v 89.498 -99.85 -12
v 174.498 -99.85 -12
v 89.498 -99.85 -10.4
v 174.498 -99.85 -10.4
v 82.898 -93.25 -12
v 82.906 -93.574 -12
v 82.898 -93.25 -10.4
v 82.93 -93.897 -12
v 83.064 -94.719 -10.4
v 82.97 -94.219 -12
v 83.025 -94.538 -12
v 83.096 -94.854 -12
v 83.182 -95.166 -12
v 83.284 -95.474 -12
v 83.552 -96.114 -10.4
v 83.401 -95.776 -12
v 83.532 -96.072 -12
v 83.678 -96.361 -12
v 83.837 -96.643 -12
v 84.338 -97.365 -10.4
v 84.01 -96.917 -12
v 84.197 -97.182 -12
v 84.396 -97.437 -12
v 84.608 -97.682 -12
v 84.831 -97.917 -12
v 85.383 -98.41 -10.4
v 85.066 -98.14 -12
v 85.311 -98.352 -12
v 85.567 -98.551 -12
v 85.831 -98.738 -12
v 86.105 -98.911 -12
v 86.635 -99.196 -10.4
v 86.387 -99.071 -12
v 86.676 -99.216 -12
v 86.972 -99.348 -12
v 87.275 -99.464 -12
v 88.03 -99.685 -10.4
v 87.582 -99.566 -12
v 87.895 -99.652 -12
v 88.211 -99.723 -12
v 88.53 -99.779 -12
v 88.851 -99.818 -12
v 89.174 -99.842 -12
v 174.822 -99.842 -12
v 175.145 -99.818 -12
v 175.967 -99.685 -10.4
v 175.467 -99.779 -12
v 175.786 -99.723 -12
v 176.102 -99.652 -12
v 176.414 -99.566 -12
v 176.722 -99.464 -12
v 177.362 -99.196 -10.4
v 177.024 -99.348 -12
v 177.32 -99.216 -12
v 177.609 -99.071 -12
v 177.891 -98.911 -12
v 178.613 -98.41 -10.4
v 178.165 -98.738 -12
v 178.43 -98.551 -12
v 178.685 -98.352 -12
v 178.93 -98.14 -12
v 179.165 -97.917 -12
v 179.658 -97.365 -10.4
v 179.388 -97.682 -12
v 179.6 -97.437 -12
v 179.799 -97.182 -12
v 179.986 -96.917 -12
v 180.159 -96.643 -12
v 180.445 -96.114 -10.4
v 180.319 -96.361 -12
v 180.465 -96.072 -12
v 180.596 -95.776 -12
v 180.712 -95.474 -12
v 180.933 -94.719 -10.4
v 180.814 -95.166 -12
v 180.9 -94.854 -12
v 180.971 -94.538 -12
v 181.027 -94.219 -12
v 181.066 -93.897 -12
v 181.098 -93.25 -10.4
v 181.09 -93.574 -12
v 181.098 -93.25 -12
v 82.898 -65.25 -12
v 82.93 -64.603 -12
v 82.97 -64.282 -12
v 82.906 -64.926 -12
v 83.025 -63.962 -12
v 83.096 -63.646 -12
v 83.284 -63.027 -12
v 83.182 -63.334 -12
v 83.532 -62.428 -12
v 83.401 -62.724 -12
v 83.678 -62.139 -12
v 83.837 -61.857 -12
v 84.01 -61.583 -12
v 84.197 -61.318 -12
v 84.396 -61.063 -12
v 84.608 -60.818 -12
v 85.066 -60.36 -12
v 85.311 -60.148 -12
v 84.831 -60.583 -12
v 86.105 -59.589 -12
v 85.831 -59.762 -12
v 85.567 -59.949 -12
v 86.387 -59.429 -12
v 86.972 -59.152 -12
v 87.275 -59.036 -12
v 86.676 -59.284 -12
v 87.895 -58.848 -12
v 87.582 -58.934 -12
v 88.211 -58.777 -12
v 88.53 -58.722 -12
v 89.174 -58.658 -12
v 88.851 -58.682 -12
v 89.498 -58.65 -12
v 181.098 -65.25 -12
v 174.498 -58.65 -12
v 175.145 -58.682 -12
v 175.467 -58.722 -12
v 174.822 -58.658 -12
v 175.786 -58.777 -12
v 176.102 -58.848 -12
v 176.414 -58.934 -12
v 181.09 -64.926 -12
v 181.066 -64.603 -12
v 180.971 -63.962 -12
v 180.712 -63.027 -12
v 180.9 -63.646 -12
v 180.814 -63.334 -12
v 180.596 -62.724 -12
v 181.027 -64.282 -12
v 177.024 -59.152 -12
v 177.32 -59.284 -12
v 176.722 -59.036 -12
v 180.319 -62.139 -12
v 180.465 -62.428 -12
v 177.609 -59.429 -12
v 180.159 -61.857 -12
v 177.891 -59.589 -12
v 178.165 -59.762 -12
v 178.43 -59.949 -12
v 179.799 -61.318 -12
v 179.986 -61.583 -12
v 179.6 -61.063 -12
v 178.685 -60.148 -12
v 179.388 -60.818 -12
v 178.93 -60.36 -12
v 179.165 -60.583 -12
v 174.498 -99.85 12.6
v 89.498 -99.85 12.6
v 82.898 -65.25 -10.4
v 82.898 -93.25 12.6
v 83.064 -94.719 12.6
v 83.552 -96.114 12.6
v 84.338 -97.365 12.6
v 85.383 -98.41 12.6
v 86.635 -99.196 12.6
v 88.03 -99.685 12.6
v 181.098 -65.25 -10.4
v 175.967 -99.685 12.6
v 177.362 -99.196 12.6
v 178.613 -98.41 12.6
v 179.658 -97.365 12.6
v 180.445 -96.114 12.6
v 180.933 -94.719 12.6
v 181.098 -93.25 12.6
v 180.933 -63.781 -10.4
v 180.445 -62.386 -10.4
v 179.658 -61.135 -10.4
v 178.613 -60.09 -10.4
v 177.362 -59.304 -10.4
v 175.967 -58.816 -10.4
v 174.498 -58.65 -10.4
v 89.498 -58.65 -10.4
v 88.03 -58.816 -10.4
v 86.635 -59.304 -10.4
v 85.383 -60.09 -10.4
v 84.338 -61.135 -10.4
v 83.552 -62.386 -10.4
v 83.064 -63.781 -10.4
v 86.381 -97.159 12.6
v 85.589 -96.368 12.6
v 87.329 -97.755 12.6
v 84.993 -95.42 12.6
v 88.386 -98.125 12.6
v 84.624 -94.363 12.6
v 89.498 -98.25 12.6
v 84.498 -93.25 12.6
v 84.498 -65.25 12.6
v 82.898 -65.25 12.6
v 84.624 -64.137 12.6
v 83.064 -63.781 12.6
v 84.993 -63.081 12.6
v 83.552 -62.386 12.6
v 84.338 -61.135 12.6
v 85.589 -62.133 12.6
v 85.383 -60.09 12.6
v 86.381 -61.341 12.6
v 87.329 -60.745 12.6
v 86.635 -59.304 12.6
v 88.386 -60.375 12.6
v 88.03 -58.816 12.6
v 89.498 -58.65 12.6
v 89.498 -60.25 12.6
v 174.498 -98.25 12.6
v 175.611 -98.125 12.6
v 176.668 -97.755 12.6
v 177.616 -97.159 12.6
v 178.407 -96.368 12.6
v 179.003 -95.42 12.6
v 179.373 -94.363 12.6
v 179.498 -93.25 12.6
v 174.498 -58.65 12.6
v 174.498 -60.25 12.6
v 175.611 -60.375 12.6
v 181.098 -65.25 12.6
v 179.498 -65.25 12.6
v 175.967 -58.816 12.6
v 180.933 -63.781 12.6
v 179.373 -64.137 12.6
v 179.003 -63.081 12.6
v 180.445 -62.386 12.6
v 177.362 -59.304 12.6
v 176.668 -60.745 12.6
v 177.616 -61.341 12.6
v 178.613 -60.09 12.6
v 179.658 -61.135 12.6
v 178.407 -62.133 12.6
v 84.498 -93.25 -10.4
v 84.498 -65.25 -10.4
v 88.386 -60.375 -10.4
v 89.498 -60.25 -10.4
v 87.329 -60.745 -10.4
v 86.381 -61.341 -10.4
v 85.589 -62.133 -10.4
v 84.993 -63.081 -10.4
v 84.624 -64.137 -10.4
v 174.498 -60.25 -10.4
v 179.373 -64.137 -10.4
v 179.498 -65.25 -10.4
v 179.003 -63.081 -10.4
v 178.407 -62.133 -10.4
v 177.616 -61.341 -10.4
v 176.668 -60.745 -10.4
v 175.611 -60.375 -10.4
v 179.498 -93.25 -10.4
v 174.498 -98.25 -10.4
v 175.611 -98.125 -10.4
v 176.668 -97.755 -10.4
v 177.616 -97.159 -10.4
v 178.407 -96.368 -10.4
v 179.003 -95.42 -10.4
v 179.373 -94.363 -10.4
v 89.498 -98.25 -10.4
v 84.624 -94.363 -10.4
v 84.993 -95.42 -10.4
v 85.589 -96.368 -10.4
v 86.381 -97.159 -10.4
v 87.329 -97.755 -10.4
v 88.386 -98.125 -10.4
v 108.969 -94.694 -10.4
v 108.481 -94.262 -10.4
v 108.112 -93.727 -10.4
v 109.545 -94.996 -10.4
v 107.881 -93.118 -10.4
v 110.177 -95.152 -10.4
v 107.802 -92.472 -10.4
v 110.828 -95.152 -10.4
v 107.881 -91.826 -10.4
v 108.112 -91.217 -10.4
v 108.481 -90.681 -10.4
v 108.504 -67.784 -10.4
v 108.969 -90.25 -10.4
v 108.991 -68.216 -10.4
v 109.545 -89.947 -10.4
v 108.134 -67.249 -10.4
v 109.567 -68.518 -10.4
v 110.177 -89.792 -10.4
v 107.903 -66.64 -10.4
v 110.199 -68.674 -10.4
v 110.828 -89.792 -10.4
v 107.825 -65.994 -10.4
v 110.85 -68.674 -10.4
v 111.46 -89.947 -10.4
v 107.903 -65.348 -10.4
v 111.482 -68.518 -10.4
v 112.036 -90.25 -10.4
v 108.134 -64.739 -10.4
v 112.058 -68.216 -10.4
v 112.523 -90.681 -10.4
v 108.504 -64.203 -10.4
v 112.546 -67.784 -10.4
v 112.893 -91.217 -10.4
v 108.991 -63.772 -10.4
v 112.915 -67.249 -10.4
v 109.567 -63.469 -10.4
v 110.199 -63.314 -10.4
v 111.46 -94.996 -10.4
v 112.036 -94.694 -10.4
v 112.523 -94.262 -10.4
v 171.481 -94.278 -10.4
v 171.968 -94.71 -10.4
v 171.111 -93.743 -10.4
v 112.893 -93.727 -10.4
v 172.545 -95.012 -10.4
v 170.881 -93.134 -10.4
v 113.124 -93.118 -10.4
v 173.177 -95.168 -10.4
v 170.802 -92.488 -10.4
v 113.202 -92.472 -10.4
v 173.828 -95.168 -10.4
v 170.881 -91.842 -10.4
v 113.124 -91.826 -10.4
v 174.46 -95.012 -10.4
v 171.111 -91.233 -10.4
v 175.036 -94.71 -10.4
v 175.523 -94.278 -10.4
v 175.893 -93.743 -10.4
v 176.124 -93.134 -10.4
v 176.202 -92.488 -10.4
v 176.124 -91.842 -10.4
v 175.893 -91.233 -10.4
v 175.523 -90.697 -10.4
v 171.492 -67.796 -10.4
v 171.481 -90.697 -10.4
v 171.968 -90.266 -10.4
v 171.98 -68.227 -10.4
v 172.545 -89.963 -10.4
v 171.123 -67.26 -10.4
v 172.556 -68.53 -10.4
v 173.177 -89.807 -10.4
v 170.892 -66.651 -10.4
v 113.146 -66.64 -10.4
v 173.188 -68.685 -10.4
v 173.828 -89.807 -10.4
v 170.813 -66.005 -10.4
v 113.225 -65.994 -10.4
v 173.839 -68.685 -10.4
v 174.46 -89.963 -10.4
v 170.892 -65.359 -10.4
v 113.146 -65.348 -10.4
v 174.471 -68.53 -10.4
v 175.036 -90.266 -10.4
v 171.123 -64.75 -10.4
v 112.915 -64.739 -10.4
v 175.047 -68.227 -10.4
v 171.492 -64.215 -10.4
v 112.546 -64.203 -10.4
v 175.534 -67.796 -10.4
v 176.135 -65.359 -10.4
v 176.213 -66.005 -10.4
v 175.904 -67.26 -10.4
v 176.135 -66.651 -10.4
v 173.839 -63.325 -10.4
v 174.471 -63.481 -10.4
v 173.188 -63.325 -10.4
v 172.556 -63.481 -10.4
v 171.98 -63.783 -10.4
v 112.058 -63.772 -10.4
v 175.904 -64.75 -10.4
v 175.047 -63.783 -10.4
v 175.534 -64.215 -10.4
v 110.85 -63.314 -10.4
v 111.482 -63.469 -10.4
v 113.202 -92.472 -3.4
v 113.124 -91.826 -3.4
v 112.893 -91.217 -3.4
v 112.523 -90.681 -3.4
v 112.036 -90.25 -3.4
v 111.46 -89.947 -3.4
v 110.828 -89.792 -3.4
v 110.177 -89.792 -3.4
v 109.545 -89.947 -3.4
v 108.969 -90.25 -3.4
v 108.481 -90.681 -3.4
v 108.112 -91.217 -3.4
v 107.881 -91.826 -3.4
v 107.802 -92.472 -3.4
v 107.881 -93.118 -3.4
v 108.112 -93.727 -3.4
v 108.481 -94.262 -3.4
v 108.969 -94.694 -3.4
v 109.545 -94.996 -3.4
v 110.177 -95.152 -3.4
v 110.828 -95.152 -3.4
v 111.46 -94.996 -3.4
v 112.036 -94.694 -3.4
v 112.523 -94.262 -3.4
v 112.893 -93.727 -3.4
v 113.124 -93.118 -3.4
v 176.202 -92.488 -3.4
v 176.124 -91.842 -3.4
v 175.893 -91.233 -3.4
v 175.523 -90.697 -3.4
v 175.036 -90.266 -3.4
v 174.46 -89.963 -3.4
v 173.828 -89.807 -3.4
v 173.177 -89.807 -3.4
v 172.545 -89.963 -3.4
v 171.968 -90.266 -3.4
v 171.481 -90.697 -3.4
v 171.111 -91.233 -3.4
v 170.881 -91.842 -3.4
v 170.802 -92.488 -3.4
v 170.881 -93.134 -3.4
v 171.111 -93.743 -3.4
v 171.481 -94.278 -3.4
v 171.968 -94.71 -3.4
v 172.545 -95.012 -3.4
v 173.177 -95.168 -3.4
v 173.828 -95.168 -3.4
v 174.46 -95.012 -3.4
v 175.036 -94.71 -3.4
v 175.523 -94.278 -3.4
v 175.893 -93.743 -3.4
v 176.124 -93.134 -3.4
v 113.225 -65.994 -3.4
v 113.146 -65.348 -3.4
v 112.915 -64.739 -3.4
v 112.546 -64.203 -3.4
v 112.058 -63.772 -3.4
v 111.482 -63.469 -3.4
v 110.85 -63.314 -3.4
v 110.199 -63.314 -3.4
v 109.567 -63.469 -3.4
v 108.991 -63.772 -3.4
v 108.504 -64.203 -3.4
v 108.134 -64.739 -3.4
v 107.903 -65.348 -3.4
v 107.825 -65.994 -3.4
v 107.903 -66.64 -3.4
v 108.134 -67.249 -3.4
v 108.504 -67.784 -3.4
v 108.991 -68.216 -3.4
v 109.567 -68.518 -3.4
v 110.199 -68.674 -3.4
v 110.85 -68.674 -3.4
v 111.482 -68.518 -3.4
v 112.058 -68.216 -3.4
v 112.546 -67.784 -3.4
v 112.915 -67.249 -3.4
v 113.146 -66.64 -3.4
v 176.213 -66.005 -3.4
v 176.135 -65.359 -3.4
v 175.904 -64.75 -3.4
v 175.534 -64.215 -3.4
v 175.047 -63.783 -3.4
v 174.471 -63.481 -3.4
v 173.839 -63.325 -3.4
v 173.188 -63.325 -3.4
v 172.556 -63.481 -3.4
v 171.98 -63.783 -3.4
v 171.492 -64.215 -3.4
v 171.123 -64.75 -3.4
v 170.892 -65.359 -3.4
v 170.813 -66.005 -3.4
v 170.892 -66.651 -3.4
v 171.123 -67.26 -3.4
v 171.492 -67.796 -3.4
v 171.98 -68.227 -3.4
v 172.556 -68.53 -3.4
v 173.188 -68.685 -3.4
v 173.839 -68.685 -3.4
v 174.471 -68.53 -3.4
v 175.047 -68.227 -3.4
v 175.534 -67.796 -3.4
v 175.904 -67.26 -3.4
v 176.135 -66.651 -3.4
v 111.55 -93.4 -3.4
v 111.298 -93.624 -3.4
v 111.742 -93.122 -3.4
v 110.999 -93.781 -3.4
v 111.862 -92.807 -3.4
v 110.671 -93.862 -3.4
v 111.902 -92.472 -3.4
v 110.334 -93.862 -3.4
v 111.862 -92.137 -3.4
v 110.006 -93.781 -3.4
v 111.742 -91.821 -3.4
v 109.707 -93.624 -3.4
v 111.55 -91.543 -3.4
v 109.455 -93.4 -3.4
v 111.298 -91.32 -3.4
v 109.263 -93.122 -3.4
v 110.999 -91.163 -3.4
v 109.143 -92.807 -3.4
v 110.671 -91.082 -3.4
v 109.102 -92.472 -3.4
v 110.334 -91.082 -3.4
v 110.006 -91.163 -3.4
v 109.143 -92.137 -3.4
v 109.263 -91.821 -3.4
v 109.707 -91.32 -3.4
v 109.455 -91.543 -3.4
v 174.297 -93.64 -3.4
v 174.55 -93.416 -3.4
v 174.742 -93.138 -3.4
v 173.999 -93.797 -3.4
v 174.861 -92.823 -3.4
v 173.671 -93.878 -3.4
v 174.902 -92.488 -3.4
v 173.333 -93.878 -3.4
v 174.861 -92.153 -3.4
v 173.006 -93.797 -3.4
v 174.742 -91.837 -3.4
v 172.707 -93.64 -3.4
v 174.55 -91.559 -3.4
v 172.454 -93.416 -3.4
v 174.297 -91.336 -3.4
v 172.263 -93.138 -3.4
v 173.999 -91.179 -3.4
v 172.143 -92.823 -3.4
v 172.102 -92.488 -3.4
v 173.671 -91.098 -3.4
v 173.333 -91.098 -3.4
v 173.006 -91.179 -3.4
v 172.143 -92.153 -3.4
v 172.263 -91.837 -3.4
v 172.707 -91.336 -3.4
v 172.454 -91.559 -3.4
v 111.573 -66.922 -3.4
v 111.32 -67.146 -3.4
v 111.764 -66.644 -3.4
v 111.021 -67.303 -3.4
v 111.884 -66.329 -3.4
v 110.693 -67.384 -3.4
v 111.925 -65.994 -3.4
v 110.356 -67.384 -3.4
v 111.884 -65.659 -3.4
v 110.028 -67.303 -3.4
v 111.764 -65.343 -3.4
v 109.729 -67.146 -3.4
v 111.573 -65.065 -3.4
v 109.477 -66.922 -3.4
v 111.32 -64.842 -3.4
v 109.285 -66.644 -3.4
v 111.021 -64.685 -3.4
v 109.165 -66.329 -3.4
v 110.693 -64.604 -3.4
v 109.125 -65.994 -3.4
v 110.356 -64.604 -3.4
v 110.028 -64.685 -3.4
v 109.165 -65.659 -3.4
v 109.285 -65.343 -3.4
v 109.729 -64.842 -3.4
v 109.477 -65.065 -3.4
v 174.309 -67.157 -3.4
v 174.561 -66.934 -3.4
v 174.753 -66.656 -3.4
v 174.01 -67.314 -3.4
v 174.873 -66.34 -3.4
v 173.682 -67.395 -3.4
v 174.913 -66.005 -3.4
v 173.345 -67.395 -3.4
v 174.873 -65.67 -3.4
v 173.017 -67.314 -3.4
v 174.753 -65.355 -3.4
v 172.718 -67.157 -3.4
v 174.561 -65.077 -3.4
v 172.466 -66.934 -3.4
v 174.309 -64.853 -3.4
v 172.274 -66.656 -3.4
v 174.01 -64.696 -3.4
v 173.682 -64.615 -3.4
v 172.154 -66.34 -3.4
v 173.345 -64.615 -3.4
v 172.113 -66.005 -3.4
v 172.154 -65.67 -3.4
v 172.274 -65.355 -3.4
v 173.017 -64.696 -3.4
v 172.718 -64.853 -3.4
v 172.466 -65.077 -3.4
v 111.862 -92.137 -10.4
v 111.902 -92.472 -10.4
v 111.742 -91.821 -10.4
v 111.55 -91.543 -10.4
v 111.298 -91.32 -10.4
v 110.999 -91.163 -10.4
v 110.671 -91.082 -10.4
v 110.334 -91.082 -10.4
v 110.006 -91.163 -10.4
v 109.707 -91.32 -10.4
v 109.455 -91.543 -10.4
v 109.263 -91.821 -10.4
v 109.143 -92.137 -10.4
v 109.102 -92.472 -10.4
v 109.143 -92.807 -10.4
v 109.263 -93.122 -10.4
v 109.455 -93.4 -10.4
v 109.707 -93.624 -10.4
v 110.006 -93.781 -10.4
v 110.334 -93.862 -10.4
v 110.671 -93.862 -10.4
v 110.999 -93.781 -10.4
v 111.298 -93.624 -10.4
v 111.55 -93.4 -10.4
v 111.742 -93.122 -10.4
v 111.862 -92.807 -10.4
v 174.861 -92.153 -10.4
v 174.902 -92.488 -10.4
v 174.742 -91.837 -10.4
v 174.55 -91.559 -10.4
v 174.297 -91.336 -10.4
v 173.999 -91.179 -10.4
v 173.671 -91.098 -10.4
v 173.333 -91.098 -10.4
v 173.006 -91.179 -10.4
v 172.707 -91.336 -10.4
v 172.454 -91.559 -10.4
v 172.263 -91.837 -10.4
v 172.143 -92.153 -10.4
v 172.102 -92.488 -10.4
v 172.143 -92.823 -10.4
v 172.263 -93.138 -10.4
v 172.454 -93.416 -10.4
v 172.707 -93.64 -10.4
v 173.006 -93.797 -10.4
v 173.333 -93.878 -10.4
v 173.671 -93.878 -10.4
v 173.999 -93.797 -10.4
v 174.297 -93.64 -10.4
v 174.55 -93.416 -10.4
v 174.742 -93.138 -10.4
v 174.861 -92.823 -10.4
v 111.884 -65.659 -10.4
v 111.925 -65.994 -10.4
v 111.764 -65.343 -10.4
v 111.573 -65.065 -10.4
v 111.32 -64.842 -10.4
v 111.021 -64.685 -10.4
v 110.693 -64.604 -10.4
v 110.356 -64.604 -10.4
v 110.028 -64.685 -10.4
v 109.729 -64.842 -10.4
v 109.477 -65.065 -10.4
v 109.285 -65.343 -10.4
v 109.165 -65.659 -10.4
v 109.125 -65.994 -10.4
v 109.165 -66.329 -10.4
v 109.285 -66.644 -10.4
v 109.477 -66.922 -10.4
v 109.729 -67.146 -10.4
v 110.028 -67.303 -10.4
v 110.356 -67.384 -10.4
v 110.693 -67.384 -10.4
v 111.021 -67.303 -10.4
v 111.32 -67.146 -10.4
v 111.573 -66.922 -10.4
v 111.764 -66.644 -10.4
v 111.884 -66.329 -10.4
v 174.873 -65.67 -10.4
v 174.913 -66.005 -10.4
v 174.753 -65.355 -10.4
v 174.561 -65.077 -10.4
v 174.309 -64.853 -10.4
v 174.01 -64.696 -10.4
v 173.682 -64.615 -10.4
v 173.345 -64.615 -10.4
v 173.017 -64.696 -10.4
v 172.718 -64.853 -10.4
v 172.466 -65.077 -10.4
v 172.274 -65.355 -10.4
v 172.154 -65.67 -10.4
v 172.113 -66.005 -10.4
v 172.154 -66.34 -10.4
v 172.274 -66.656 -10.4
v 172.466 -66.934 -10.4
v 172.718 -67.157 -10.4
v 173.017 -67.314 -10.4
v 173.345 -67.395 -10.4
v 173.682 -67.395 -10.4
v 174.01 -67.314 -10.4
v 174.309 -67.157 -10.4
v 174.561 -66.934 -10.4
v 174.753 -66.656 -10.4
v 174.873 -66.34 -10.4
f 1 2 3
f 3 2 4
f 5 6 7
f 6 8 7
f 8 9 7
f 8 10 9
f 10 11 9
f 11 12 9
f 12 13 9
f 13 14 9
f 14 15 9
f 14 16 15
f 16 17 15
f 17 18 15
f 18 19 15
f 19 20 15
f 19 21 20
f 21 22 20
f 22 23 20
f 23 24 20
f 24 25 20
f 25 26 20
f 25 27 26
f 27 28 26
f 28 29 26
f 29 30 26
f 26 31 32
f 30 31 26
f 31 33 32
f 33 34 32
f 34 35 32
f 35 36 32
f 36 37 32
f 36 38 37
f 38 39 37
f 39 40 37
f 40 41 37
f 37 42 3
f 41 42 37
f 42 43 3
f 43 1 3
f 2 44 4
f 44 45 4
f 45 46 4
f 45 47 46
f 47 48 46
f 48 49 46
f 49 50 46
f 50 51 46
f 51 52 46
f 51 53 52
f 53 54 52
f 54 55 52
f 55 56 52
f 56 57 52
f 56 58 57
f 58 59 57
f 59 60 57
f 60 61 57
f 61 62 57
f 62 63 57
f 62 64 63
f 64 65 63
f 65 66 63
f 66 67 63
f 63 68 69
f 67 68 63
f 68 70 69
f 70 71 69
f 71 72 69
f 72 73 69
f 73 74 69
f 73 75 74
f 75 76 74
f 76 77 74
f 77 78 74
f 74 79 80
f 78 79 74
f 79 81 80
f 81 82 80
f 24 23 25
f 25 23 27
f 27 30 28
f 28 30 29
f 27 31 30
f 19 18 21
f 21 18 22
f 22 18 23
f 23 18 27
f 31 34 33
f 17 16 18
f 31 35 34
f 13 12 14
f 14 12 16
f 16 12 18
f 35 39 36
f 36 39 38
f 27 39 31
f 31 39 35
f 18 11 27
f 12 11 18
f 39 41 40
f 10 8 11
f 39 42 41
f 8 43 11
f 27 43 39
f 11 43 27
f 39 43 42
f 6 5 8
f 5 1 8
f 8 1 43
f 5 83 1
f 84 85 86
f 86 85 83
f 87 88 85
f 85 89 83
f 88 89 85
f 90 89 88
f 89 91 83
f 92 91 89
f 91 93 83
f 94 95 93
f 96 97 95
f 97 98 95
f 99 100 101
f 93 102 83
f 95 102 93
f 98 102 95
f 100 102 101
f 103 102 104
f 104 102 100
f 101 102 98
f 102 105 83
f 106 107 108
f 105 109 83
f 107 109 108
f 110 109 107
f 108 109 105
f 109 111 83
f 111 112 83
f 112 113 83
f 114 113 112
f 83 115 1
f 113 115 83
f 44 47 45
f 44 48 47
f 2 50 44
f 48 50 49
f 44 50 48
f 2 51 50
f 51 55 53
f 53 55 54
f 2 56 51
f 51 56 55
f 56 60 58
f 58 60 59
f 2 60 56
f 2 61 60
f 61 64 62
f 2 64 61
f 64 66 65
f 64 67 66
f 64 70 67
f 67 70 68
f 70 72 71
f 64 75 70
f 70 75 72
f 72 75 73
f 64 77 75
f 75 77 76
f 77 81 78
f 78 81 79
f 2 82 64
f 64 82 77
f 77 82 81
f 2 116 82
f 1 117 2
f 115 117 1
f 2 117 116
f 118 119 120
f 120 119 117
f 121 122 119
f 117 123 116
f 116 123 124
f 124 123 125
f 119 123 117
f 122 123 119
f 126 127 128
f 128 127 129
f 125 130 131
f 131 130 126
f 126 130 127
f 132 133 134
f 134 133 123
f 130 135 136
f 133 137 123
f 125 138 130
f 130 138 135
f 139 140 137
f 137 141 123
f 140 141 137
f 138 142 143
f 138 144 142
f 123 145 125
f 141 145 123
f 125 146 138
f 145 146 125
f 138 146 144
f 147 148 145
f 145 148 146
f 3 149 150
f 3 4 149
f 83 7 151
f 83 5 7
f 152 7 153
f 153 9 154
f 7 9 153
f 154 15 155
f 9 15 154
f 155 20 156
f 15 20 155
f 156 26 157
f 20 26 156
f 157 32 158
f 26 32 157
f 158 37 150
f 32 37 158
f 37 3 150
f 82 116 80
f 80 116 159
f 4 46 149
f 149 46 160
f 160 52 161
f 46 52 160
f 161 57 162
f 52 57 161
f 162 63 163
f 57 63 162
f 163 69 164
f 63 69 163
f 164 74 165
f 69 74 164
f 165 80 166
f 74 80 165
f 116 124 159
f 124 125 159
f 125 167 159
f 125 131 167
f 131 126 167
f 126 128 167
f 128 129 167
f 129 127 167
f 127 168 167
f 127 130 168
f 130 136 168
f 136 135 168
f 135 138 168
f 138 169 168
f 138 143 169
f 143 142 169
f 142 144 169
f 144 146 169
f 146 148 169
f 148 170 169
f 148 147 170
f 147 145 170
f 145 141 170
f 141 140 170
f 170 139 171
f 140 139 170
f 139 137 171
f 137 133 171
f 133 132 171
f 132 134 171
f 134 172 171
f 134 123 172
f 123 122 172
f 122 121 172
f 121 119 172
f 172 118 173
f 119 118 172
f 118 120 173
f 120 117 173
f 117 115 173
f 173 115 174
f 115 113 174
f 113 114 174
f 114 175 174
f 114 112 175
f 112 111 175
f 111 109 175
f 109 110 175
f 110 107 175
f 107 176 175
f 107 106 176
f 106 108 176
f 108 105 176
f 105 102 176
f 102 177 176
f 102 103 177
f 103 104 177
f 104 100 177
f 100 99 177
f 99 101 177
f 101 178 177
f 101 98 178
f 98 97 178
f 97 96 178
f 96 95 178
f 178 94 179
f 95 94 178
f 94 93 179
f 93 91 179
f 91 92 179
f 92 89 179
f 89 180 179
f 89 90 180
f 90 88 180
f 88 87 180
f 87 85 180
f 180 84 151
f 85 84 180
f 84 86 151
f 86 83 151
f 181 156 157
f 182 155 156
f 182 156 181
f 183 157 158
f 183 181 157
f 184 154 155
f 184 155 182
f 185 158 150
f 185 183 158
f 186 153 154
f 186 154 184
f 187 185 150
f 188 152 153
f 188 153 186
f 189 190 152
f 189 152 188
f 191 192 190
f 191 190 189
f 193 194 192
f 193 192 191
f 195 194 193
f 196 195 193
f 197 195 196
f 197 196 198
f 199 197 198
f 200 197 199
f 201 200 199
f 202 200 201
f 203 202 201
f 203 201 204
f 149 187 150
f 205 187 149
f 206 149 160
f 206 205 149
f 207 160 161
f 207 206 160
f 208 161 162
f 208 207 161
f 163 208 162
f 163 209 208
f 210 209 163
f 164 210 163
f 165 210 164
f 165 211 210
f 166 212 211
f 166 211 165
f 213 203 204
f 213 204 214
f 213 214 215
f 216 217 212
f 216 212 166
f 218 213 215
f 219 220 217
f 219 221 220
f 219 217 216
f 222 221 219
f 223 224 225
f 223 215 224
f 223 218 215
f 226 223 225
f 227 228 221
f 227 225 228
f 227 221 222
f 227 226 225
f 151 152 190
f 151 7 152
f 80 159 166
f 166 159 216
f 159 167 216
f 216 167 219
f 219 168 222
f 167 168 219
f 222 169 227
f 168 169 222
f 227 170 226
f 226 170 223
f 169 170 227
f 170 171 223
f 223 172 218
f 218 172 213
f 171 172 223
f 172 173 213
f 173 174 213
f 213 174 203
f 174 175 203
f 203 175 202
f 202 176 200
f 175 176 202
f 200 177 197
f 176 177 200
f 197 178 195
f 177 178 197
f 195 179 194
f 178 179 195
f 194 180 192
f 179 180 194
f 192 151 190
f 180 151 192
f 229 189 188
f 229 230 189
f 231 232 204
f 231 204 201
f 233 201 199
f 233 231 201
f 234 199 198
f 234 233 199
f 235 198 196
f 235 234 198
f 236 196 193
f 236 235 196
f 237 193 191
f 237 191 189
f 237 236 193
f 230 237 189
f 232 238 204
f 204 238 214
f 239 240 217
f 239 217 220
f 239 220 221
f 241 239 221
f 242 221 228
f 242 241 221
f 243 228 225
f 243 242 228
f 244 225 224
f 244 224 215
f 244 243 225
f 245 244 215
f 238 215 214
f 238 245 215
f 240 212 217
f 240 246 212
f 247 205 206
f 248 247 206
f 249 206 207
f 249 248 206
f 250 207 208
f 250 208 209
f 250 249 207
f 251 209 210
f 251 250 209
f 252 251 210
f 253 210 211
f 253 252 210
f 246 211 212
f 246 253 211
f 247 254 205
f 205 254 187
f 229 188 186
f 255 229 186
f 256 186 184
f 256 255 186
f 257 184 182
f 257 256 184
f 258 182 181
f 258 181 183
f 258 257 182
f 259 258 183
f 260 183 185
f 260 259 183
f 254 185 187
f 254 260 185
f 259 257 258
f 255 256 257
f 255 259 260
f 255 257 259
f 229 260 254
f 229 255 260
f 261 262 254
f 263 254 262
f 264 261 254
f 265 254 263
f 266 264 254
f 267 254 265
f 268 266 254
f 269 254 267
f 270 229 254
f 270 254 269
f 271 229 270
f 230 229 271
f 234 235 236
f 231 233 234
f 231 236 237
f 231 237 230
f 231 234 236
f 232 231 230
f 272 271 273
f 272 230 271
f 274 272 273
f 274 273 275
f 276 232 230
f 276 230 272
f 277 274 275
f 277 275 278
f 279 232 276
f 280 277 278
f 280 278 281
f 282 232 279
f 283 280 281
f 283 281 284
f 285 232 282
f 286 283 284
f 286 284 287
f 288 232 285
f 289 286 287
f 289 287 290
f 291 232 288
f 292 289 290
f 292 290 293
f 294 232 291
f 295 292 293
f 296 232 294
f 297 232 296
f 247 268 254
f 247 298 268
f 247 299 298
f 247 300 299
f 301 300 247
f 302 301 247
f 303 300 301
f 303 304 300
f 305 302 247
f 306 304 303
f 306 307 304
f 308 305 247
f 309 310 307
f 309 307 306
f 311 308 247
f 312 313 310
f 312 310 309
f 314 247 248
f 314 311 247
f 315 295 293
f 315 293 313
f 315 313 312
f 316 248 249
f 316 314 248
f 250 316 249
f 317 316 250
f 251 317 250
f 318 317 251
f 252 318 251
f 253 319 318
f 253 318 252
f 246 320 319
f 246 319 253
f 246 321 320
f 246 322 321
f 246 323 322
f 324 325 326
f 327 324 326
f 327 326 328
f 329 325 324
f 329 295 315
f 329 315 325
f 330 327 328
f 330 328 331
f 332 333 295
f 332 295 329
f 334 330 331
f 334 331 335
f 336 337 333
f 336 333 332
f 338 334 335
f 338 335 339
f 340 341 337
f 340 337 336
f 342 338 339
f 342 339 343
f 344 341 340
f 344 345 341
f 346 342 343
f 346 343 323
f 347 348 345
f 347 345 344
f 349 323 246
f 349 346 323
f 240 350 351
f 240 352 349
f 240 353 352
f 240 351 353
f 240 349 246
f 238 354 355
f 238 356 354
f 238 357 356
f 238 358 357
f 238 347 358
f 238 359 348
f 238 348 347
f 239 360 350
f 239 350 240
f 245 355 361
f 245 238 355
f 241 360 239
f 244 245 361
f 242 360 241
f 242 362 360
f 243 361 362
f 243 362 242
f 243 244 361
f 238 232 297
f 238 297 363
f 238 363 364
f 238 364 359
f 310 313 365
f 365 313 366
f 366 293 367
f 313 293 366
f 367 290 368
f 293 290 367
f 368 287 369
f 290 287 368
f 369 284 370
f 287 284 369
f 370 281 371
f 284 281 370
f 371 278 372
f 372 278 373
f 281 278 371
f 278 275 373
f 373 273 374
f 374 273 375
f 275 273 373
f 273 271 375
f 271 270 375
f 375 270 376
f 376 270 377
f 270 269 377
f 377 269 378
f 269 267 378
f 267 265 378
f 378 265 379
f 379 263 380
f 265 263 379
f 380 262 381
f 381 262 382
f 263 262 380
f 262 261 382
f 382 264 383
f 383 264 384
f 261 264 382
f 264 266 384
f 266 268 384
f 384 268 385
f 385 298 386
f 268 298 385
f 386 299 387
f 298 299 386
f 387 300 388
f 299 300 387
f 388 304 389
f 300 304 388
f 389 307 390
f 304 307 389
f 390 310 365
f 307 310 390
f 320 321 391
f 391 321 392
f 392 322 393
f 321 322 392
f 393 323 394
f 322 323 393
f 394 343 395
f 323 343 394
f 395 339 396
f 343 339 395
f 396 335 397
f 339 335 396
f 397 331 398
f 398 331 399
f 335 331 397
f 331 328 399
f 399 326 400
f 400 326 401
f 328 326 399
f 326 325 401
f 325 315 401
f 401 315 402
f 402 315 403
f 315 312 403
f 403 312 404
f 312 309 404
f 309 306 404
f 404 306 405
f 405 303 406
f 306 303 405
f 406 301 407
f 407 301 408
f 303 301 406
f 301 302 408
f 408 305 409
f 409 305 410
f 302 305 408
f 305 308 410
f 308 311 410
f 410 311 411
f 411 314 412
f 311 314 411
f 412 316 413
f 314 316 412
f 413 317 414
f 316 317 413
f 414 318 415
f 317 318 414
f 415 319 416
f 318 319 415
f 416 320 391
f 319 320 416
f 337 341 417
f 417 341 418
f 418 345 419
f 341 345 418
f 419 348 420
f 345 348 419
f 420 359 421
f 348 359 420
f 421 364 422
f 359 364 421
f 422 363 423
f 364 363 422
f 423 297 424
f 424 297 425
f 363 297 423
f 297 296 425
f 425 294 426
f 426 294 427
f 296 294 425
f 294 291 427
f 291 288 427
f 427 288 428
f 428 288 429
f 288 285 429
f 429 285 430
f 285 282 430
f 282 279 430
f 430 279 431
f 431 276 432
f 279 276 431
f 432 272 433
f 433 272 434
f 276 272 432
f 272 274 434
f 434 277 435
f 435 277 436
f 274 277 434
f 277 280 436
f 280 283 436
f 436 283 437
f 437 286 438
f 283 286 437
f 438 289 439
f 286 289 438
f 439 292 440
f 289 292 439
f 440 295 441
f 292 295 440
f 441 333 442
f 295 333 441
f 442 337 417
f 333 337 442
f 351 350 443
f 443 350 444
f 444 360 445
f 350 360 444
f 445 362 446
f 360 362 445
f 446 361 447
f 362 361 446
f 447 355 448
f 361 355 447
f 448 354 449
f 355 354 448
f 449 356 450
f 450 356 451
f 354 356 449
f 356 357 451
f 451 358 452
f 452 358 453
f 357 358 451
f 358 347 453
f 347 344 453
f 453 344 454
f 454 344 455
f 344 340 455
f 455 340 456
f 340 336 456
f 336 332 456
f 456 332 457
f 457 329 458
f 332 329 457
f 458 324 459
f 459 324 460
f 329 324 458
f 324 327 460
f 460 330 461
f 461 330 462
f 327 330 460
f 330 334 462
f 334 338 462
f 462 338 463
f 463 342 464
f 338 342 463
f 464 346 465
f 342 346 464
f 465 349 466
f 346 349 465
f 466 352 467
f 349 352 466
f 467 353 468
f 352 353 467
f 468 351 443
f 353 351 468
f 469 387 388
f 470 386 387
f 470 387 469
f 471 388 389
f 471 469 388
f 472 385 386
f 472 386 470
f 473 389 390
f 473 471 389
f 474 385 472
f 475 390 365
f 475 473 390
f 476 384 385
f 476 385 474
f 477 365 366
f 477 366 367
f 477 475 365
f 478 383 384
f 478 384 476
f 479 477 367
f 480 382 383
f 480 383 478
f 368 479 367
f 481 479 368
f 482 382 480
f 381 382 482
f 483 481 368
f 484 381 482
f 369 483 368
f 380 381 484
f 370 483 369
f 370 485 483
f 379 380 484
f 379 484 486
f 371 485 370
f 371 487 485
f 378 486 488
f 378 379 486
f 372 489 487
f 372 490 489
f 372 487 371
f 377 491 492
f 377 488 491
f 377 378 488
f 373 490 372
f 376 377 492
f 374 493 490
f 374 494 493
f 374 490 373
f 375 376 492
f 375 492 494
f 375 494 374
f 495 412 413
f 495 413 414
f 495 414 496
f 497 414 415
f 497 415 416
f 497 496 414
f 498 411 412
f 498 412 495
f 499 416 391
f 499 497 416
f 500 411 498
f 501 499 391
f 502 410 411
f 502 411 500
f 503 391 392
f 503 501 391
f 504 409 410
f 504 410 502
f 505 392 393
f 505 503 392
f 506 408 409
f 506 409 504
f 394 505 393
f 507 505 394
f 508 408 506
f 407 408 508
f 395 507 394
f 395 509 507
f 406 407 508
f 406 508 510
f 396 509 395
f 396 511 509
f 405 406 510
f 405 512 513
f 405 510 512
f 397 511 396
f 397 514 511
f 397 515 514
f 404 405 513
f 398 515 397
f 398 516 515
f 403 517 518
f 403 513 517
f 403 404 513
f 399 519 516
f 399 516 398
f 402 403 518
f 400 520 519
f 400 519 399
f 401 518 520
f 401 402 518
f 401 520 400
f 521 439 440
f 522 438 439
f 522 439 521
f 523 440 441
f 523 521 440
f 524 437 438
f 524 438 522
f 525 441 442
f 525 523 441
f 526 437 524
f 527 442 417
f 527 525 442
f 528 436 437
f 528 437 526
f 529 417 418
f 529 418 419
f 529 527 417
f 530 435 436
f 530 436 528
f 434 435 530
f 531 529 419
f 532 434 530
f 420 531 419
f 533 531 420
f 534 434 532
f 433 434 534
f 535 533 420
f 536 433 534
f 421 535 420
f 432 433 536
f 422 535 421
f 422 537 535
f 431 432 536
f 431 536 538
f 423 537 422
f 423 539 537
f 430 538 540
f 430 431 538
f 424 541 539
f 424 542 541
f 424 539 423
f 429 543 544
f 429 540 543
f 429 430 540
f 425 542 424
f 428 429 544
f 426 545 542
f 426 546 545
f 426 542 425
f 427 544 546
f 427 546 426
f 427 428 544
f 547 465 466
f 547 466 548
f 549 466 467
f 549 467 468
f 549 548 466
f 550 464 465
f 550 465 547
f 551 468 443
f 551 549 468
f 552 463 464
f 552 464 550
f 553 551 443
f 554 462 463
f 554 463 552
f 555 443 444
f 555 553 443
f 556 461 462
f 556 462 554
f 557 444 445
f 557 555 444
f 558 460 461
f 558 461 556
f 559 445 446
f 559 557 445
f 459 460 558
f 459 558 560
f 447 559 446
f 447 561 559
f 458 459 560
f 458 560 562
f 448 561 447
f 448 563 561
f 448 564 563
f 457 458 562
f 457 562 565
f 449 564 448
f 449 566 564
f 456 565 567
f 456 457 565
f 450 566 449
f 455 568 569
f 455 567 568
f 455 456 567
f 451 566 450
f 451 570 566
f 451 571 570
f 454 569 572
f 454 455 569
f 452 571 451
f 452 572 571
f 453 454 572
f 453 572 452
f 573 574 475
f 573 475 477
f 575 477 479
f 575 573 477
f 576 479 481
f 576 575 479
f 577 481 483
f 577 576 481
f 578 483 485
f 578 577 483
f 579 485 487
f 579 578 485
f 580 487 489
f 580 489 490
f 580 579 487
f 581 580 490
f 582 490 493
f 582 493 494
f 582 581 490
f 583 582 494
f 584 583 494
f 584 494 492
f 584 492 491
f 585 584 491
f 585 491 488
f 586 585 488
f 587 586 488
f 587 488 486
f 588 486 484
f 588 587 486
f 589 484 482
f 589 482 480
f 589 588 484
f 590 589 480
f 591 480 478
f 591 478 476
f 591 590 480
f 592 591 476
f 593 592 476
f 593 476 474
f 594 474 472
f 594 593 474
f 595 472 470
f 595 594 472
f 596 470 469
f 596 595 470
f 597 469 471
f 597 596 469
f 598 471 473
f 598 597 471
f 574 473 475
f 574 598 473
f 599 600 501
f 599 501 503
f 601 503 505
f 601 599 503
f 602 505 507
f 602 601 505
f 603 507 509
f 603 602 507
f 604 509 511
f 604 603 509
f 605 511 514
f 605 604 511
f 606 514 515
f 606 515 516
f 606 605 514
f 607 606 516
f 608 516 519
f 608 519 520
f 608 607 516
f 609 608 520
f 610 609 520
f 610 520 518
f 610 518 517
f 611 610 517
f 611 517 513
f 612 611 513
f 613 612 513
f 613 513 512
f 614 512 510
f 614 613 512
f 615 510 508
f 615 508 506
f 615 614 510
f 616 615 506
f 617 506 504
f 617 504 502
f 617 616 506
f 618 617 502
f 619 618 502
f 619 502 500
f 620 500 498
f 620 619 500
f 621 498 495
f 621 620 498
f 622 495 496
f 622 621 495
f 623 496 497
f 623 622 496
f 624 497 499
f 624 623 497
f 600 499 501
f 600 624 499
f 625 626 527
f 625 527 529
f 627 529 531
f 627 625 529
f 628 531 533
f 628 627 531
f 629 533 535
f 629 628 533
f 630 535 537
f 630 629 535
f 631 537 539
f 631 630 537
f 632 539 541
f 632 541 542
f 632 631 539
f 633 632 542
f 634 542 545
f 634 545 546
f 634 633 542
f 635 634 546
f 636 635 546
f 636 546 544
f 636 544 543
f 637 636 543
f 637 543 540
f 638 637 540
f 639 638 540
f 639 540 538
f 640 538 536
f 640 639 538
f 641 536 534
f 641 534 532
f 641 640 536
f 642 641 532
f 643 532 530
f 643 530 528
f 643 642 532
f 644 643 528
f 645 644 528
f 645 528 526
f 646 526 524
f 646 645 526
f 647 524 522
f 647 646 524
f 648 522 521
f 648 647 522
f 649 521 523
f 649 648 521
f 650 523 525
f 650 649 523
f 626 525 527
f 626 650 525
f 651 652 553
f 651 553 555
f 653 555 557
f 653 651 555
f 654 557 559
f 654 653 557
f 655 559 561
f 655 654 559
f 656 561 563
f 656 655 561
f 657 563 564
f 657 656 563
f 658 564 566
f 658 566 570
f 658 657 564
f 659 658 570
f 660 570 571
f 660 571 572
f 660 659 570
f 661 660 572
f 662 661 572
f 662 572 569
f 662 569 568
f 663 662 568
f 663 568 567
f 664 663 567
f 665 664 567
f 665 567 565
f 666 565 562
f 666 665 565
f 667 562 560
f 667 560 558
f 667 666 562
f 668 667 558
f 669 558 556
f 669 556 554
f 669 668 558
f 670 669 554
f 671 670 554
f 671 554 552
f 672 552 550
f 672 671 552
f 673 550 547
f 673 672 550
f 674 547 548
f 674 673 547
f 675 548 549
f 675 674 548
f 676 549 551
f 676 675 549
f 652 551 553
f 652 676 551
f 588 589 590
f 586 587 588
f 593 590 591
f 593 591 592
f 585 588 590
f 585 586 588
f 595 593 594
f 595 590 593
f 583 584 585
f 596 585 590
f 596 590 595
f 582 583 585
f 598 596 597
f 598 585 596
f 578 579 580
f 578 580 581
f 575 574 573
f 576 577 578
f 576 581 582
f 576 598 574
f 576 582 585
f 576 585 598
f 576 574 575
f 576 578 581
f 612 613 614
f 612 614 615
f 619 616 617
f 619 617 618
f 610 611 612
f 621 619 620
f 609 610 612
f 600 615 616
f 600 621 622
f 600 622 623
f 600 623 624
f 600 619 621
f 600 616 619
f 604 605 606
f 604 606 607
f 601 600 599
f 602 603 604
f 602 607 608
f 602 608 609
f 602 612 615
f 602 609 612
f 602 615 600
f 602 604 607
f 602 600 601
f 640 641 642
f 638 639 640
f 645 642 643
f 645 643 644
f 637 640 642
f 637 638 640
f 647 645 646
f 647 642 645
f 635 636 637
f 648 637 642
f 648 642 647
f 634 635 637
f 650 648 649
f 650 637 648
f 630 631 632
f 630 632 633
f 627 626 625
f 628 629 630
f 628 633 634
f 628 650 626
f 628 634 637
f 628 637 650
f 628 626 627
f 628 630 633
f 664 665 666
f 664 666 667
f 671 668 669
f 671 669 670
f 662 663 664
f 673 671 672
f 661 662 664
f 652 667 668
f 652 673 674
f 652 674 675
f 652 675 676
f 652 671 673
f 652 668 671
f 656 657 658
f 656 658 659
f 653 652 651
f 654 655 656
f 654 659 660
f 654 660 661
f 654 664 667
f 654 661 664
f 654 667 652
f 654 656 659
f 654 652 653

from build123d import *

# Parameters (mm, degrees)
SKETCH002_R      = 2.7
SKETCH002_R_2    = 1.4
EXTRUDE001_DEPTH = 7
EXTRUDE002_DEPTH = 23
EXTRUDE_DEPTH    = 1.6


with BuildPart() as pootjesm3:
    # Sketch002 (on Face10 of Extrude) → Extrude001 (new body)
    with BuildSketch(Plane.XY.offset(-10.4)):
        with Locations((90.524621, -65.993824)):
            Circle(SKETCH002_R)
        with Locations((90.524621, -65.993824)):
            Circle(SKETCH002_R_2, mode=Mode.SUBTRACT)
        with Locations((90.502441, -92.471822)):
            Circle(SKETCH002_R)
        with Locations((90.502441, -92.471822)):
            Circle(SKETCH002_R_2, mode=Mode.SUBTRACT)
        with Locations((153.513474, -66.00515)):
            Circle(SKETCH002_R)
        with Locations((153.513474, -66.00515)):
            Circle(SKETCH002_R_2, mode=Mode.SUBTRACT)
        with Locations((153.502167, -92.48777)):
            Circle(SKETCH002_R)
        with Locations((153.502167, -92.48777)):
            Circle(SKETCH002_R_2, mode=Mode.SUBTRACT)
    extrude(amount=EXTRUDE001_DEPTH)


with BuildPart() as pootjesm3_1:
    # Extrude001 placement: moved
    add(pootjesm3.part.moved(Location((20, 0, 0))))


with BuildPart() as walls:
    # Sketch → Extrude002 (new body)
    with BuildSketch(Plane.XY):
        with BuildLine():
            Line((89.498192, -99.850084), (174.498192, -99.850084))
            ThreePointArc((174.498192, -99.850084), (179.165097, -97.916989), (181.098192, -93.250084))
            Line((181.098192, -93.250084), (181.098192, -65.250084))
            ThreePointArc((181.098192, -65.250084), (179.165097, -60.583179), (174.498192, -58.650084))
            Line((174.498192, -58.650084), (89.498192, -58.650084))
            ThreePointArc((89.498192, -58.650084), (84.831287, -60.583179), (82.898192, -65.250084))
            Line((82.898192, -65.250084), (82.898192, -93.250084))
            ThreePointArc((82.898192, -93.250084), (84.831287, -97.916989), (89.498192, -99.850084))
        make_face()
        with BuildLine():
            Line((89.498192, -60.250084), (174.498192, -60.250084))
            ThreePointArc((179.498192, -65.250084), (178.033726, -61.71455), (174.498192, -60.250084))
            Line((179.498192, -65.250084), (179.498192, -93.250084))
            ThreePointArc((174.498192, -98.250084), (178.033726, -96.785618), (179.498192, -93.250084))
            Line((174.498192, -98.250084), (89.498192, -98.250084))
            ThreePointArc((84.498192, -93.250084), (85.962658, -96.785618), (89.498192, -98.250084))
            Line((84.498192, -93.250084), (84.498192, -65.250084))
            ThreePointArc((89.498192, -60.250084), (85.962658, -61.71455), (84.498192, -65.250084))
        make_face(mode=Mode.SUBTRACT)
    extrude(amount=EXTRUDE002_DEPTH)


with BuildPart() as walls_1:
    # Extrude002 placement: moved
    add(walls.part.moved(Location((0, 0, -10.4))))


with BuildPart() as doos:
    # Sketch001 → Extrude (new body)
    with BuildSketch(Plane.XY):
        with BuildLine():
            Line((89.498192, -99.850084), (174.498192, -99.850084))
            ThreePointArc((174.498192, -99.850084), (179.165097, -97.916989), (181.098192, -93.250084))
            Line((181.098192, -93.250084), (181.098192, -65.250084))
            ThreePointArc((181.098192, -65.250084), (179.165097, -60.583179), (174.498192, -58.650084))
            Line((174.498192, -58.650084), (89.498192, -58.650084))
            ThreePointArc((89.498192, -58.650084), (84.831287, -60.583179), (82.898192, -65.250084))
            Line((82.898192, -65.250084), (82.898192, -93.250084))
            ThreePointArc((82.898192, -93.250084), (84.831287, -97.916989), (89.498192, -99.850084))
        make_face()
    extrude(amount=EXTRUDE_DEPTH)


with BuildPart() as doos_1:
    # Extrude placement: moved
    add(doos.part.moved(Location((0, 0, -12))))

    # Fusion: union pootjesM3, Walls
    add(pootjesm3_1.part)
    add(walls_1.part)


solid = doos_1.part
